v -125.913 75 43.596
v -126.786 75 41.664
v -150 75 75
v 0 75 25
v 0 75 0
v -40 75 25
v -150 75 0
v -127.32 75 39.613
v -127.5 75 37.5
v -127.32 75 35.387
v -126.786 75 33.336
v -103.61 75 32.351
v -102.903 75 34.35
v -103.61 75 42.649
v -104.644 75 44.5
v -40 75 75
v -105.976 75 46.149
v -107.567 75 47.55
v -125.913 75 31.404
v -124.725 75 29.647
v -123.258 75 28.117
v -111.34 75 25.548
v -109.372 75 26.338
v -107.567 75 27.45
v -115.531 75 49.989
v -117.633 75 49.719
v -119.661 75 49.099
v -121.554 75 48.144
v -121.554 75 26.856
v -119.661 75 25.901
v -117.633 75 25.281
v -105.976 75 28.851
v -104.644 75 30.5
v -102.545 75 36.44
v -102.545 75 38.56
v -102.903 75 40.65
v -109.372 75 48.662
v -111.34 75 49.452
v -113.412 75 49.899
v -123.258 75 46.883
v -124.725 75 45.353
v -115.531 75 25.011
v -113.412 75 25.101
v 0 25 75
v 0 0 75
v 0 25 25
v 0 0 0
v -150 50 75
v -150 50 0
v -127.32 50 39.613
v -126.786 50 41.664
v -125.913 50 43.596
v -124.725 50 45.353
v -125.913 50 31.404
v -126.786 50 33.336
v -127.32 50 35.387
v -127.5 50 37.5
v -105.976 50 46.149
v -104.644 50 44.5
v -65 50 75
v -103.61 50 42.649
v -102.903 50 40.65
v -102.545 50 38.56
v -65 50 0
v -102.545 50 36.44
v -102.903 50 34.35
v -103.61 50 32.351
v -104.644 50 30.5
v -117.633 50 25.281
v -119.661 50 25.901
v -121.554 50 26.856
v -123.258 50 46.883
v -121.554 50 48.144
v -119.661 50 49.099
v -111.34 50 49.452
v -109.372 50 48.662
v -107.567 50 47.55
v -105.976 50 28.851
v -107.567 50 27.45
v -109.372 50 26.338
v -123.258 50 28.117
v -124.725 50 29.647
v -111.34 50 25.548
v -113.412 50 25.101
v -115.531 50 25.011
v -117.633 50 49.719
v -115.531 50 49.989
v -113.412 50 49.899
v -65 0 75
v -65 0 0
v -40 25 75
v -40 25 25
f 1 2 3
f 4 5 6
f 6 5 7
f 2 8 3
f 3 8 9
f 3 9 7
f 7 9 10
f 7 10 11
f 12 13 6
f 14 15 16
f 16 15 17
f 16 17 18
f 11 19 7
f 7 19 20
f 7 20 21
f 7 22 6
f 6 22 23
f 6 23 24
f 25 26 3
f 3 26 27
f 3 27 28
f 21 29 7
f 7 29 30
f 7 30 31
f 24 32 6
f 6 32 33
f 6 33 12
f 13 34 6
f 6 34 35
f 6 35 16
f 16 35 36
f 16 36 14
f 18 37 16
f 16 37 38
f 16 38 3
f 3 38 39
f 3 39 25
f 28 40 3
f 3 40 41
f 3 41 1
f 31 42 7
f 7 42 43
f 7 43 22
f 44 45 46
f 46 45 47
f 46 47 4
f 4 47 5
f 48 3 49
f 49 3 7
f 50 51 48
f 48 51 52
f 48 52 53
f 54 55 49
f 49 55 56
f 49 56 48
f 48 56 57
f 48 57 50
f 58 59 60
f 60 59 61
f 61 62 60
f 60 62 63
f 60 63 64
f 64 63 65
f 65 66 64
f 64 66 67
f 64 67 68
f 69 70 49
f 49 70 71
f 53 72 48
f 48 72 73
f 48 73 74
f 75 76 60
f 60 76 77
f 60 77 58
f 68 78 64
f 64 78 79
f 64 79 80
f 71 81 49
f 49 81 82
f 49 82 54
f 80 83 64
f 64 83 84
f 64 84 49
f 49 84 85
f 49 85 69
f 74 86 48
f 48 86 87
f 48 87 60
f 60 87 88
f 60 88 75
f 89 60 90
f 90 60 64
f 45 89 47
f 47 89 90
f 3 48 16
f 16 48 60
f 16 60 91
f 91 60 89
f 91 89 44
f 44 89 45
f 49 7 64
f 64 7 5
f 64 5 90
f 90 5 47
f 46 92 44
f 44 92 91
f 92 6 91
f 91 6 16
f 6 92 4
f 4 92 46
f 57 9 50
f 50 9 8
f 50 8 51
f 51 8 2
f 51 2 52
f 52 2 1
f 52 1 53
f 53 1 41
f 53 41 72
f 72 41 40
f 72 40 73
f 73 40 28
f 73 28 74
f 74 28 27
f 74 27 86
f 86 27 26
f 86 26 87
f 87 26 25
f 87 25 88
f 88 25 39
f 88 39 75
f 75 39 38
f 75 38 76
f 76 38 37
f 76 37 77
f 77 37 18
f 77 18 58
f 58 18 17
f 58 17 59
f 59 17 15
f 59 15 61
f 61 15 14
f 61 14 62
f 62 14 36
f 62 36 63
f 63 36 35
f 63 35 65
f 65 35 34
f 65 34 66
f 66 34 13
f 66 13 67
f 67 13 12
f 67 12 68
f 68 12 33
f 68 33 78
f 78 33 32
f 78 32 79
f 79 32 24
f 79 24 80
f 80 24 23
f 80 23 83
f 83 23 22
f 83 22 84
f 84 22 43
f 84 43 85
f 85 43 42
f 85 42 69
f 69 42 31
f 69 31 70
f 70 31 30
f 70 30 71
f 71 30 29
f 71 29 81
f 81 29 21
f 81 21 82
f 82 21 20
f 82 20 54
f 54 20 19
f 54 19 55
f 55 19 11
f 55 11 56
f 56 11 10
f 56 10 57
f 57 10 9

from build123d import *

# Parameters (mm, degrees)
BOSS_EXTRUDE1_DEPTH = 75
SKETCH4_W           = 40
SKETCH4_H           = 50
CUT_EXTRUDE1_DEPTH  = 50
SKETCH5_R           = 12.5
CUT_EXTRUDE2_DEPTH  = 25


with BuildPart() as part:
    # Sketch2 → Boss-Extrude1 (new body)
    with BuildSketch(Plane.XY):
        Polygon((0, 0), (-65, 0), (-65, 50), (-150, 50), (-150, 75), (0, 75), align=None)
    extrude(amount=BOSS_EXTRUDE1_DEPTH)

    # Sketch4 → Cut-Extrude1 (cut)
    with BuildSketch(Plane.XY.offset(75)):
        with Locations((-20, 50)):
            Rectangle(SKETCH4_W, SKETCH4_H)
    extrude(amount=-CUT_EXTRUDE1_DEPTH, mode=Mode.SUBTRACT)

    # Sketch5 → Cut-Extrude2 (cut)
    with BuildSketch(Plane(origin=(0, 75, 0), x_dir=(1, 0, 0), z_dir=(0, 1, 0))):
        with Locations(Location((-115, -37.5, 0), (0, 0, 180))):
            Circle(SKETCH5_R)
    extrude(amount=-CUT_EXTRUDE2_DEPTH, mode=Mode.SUBTRACT)


solid = part.part
